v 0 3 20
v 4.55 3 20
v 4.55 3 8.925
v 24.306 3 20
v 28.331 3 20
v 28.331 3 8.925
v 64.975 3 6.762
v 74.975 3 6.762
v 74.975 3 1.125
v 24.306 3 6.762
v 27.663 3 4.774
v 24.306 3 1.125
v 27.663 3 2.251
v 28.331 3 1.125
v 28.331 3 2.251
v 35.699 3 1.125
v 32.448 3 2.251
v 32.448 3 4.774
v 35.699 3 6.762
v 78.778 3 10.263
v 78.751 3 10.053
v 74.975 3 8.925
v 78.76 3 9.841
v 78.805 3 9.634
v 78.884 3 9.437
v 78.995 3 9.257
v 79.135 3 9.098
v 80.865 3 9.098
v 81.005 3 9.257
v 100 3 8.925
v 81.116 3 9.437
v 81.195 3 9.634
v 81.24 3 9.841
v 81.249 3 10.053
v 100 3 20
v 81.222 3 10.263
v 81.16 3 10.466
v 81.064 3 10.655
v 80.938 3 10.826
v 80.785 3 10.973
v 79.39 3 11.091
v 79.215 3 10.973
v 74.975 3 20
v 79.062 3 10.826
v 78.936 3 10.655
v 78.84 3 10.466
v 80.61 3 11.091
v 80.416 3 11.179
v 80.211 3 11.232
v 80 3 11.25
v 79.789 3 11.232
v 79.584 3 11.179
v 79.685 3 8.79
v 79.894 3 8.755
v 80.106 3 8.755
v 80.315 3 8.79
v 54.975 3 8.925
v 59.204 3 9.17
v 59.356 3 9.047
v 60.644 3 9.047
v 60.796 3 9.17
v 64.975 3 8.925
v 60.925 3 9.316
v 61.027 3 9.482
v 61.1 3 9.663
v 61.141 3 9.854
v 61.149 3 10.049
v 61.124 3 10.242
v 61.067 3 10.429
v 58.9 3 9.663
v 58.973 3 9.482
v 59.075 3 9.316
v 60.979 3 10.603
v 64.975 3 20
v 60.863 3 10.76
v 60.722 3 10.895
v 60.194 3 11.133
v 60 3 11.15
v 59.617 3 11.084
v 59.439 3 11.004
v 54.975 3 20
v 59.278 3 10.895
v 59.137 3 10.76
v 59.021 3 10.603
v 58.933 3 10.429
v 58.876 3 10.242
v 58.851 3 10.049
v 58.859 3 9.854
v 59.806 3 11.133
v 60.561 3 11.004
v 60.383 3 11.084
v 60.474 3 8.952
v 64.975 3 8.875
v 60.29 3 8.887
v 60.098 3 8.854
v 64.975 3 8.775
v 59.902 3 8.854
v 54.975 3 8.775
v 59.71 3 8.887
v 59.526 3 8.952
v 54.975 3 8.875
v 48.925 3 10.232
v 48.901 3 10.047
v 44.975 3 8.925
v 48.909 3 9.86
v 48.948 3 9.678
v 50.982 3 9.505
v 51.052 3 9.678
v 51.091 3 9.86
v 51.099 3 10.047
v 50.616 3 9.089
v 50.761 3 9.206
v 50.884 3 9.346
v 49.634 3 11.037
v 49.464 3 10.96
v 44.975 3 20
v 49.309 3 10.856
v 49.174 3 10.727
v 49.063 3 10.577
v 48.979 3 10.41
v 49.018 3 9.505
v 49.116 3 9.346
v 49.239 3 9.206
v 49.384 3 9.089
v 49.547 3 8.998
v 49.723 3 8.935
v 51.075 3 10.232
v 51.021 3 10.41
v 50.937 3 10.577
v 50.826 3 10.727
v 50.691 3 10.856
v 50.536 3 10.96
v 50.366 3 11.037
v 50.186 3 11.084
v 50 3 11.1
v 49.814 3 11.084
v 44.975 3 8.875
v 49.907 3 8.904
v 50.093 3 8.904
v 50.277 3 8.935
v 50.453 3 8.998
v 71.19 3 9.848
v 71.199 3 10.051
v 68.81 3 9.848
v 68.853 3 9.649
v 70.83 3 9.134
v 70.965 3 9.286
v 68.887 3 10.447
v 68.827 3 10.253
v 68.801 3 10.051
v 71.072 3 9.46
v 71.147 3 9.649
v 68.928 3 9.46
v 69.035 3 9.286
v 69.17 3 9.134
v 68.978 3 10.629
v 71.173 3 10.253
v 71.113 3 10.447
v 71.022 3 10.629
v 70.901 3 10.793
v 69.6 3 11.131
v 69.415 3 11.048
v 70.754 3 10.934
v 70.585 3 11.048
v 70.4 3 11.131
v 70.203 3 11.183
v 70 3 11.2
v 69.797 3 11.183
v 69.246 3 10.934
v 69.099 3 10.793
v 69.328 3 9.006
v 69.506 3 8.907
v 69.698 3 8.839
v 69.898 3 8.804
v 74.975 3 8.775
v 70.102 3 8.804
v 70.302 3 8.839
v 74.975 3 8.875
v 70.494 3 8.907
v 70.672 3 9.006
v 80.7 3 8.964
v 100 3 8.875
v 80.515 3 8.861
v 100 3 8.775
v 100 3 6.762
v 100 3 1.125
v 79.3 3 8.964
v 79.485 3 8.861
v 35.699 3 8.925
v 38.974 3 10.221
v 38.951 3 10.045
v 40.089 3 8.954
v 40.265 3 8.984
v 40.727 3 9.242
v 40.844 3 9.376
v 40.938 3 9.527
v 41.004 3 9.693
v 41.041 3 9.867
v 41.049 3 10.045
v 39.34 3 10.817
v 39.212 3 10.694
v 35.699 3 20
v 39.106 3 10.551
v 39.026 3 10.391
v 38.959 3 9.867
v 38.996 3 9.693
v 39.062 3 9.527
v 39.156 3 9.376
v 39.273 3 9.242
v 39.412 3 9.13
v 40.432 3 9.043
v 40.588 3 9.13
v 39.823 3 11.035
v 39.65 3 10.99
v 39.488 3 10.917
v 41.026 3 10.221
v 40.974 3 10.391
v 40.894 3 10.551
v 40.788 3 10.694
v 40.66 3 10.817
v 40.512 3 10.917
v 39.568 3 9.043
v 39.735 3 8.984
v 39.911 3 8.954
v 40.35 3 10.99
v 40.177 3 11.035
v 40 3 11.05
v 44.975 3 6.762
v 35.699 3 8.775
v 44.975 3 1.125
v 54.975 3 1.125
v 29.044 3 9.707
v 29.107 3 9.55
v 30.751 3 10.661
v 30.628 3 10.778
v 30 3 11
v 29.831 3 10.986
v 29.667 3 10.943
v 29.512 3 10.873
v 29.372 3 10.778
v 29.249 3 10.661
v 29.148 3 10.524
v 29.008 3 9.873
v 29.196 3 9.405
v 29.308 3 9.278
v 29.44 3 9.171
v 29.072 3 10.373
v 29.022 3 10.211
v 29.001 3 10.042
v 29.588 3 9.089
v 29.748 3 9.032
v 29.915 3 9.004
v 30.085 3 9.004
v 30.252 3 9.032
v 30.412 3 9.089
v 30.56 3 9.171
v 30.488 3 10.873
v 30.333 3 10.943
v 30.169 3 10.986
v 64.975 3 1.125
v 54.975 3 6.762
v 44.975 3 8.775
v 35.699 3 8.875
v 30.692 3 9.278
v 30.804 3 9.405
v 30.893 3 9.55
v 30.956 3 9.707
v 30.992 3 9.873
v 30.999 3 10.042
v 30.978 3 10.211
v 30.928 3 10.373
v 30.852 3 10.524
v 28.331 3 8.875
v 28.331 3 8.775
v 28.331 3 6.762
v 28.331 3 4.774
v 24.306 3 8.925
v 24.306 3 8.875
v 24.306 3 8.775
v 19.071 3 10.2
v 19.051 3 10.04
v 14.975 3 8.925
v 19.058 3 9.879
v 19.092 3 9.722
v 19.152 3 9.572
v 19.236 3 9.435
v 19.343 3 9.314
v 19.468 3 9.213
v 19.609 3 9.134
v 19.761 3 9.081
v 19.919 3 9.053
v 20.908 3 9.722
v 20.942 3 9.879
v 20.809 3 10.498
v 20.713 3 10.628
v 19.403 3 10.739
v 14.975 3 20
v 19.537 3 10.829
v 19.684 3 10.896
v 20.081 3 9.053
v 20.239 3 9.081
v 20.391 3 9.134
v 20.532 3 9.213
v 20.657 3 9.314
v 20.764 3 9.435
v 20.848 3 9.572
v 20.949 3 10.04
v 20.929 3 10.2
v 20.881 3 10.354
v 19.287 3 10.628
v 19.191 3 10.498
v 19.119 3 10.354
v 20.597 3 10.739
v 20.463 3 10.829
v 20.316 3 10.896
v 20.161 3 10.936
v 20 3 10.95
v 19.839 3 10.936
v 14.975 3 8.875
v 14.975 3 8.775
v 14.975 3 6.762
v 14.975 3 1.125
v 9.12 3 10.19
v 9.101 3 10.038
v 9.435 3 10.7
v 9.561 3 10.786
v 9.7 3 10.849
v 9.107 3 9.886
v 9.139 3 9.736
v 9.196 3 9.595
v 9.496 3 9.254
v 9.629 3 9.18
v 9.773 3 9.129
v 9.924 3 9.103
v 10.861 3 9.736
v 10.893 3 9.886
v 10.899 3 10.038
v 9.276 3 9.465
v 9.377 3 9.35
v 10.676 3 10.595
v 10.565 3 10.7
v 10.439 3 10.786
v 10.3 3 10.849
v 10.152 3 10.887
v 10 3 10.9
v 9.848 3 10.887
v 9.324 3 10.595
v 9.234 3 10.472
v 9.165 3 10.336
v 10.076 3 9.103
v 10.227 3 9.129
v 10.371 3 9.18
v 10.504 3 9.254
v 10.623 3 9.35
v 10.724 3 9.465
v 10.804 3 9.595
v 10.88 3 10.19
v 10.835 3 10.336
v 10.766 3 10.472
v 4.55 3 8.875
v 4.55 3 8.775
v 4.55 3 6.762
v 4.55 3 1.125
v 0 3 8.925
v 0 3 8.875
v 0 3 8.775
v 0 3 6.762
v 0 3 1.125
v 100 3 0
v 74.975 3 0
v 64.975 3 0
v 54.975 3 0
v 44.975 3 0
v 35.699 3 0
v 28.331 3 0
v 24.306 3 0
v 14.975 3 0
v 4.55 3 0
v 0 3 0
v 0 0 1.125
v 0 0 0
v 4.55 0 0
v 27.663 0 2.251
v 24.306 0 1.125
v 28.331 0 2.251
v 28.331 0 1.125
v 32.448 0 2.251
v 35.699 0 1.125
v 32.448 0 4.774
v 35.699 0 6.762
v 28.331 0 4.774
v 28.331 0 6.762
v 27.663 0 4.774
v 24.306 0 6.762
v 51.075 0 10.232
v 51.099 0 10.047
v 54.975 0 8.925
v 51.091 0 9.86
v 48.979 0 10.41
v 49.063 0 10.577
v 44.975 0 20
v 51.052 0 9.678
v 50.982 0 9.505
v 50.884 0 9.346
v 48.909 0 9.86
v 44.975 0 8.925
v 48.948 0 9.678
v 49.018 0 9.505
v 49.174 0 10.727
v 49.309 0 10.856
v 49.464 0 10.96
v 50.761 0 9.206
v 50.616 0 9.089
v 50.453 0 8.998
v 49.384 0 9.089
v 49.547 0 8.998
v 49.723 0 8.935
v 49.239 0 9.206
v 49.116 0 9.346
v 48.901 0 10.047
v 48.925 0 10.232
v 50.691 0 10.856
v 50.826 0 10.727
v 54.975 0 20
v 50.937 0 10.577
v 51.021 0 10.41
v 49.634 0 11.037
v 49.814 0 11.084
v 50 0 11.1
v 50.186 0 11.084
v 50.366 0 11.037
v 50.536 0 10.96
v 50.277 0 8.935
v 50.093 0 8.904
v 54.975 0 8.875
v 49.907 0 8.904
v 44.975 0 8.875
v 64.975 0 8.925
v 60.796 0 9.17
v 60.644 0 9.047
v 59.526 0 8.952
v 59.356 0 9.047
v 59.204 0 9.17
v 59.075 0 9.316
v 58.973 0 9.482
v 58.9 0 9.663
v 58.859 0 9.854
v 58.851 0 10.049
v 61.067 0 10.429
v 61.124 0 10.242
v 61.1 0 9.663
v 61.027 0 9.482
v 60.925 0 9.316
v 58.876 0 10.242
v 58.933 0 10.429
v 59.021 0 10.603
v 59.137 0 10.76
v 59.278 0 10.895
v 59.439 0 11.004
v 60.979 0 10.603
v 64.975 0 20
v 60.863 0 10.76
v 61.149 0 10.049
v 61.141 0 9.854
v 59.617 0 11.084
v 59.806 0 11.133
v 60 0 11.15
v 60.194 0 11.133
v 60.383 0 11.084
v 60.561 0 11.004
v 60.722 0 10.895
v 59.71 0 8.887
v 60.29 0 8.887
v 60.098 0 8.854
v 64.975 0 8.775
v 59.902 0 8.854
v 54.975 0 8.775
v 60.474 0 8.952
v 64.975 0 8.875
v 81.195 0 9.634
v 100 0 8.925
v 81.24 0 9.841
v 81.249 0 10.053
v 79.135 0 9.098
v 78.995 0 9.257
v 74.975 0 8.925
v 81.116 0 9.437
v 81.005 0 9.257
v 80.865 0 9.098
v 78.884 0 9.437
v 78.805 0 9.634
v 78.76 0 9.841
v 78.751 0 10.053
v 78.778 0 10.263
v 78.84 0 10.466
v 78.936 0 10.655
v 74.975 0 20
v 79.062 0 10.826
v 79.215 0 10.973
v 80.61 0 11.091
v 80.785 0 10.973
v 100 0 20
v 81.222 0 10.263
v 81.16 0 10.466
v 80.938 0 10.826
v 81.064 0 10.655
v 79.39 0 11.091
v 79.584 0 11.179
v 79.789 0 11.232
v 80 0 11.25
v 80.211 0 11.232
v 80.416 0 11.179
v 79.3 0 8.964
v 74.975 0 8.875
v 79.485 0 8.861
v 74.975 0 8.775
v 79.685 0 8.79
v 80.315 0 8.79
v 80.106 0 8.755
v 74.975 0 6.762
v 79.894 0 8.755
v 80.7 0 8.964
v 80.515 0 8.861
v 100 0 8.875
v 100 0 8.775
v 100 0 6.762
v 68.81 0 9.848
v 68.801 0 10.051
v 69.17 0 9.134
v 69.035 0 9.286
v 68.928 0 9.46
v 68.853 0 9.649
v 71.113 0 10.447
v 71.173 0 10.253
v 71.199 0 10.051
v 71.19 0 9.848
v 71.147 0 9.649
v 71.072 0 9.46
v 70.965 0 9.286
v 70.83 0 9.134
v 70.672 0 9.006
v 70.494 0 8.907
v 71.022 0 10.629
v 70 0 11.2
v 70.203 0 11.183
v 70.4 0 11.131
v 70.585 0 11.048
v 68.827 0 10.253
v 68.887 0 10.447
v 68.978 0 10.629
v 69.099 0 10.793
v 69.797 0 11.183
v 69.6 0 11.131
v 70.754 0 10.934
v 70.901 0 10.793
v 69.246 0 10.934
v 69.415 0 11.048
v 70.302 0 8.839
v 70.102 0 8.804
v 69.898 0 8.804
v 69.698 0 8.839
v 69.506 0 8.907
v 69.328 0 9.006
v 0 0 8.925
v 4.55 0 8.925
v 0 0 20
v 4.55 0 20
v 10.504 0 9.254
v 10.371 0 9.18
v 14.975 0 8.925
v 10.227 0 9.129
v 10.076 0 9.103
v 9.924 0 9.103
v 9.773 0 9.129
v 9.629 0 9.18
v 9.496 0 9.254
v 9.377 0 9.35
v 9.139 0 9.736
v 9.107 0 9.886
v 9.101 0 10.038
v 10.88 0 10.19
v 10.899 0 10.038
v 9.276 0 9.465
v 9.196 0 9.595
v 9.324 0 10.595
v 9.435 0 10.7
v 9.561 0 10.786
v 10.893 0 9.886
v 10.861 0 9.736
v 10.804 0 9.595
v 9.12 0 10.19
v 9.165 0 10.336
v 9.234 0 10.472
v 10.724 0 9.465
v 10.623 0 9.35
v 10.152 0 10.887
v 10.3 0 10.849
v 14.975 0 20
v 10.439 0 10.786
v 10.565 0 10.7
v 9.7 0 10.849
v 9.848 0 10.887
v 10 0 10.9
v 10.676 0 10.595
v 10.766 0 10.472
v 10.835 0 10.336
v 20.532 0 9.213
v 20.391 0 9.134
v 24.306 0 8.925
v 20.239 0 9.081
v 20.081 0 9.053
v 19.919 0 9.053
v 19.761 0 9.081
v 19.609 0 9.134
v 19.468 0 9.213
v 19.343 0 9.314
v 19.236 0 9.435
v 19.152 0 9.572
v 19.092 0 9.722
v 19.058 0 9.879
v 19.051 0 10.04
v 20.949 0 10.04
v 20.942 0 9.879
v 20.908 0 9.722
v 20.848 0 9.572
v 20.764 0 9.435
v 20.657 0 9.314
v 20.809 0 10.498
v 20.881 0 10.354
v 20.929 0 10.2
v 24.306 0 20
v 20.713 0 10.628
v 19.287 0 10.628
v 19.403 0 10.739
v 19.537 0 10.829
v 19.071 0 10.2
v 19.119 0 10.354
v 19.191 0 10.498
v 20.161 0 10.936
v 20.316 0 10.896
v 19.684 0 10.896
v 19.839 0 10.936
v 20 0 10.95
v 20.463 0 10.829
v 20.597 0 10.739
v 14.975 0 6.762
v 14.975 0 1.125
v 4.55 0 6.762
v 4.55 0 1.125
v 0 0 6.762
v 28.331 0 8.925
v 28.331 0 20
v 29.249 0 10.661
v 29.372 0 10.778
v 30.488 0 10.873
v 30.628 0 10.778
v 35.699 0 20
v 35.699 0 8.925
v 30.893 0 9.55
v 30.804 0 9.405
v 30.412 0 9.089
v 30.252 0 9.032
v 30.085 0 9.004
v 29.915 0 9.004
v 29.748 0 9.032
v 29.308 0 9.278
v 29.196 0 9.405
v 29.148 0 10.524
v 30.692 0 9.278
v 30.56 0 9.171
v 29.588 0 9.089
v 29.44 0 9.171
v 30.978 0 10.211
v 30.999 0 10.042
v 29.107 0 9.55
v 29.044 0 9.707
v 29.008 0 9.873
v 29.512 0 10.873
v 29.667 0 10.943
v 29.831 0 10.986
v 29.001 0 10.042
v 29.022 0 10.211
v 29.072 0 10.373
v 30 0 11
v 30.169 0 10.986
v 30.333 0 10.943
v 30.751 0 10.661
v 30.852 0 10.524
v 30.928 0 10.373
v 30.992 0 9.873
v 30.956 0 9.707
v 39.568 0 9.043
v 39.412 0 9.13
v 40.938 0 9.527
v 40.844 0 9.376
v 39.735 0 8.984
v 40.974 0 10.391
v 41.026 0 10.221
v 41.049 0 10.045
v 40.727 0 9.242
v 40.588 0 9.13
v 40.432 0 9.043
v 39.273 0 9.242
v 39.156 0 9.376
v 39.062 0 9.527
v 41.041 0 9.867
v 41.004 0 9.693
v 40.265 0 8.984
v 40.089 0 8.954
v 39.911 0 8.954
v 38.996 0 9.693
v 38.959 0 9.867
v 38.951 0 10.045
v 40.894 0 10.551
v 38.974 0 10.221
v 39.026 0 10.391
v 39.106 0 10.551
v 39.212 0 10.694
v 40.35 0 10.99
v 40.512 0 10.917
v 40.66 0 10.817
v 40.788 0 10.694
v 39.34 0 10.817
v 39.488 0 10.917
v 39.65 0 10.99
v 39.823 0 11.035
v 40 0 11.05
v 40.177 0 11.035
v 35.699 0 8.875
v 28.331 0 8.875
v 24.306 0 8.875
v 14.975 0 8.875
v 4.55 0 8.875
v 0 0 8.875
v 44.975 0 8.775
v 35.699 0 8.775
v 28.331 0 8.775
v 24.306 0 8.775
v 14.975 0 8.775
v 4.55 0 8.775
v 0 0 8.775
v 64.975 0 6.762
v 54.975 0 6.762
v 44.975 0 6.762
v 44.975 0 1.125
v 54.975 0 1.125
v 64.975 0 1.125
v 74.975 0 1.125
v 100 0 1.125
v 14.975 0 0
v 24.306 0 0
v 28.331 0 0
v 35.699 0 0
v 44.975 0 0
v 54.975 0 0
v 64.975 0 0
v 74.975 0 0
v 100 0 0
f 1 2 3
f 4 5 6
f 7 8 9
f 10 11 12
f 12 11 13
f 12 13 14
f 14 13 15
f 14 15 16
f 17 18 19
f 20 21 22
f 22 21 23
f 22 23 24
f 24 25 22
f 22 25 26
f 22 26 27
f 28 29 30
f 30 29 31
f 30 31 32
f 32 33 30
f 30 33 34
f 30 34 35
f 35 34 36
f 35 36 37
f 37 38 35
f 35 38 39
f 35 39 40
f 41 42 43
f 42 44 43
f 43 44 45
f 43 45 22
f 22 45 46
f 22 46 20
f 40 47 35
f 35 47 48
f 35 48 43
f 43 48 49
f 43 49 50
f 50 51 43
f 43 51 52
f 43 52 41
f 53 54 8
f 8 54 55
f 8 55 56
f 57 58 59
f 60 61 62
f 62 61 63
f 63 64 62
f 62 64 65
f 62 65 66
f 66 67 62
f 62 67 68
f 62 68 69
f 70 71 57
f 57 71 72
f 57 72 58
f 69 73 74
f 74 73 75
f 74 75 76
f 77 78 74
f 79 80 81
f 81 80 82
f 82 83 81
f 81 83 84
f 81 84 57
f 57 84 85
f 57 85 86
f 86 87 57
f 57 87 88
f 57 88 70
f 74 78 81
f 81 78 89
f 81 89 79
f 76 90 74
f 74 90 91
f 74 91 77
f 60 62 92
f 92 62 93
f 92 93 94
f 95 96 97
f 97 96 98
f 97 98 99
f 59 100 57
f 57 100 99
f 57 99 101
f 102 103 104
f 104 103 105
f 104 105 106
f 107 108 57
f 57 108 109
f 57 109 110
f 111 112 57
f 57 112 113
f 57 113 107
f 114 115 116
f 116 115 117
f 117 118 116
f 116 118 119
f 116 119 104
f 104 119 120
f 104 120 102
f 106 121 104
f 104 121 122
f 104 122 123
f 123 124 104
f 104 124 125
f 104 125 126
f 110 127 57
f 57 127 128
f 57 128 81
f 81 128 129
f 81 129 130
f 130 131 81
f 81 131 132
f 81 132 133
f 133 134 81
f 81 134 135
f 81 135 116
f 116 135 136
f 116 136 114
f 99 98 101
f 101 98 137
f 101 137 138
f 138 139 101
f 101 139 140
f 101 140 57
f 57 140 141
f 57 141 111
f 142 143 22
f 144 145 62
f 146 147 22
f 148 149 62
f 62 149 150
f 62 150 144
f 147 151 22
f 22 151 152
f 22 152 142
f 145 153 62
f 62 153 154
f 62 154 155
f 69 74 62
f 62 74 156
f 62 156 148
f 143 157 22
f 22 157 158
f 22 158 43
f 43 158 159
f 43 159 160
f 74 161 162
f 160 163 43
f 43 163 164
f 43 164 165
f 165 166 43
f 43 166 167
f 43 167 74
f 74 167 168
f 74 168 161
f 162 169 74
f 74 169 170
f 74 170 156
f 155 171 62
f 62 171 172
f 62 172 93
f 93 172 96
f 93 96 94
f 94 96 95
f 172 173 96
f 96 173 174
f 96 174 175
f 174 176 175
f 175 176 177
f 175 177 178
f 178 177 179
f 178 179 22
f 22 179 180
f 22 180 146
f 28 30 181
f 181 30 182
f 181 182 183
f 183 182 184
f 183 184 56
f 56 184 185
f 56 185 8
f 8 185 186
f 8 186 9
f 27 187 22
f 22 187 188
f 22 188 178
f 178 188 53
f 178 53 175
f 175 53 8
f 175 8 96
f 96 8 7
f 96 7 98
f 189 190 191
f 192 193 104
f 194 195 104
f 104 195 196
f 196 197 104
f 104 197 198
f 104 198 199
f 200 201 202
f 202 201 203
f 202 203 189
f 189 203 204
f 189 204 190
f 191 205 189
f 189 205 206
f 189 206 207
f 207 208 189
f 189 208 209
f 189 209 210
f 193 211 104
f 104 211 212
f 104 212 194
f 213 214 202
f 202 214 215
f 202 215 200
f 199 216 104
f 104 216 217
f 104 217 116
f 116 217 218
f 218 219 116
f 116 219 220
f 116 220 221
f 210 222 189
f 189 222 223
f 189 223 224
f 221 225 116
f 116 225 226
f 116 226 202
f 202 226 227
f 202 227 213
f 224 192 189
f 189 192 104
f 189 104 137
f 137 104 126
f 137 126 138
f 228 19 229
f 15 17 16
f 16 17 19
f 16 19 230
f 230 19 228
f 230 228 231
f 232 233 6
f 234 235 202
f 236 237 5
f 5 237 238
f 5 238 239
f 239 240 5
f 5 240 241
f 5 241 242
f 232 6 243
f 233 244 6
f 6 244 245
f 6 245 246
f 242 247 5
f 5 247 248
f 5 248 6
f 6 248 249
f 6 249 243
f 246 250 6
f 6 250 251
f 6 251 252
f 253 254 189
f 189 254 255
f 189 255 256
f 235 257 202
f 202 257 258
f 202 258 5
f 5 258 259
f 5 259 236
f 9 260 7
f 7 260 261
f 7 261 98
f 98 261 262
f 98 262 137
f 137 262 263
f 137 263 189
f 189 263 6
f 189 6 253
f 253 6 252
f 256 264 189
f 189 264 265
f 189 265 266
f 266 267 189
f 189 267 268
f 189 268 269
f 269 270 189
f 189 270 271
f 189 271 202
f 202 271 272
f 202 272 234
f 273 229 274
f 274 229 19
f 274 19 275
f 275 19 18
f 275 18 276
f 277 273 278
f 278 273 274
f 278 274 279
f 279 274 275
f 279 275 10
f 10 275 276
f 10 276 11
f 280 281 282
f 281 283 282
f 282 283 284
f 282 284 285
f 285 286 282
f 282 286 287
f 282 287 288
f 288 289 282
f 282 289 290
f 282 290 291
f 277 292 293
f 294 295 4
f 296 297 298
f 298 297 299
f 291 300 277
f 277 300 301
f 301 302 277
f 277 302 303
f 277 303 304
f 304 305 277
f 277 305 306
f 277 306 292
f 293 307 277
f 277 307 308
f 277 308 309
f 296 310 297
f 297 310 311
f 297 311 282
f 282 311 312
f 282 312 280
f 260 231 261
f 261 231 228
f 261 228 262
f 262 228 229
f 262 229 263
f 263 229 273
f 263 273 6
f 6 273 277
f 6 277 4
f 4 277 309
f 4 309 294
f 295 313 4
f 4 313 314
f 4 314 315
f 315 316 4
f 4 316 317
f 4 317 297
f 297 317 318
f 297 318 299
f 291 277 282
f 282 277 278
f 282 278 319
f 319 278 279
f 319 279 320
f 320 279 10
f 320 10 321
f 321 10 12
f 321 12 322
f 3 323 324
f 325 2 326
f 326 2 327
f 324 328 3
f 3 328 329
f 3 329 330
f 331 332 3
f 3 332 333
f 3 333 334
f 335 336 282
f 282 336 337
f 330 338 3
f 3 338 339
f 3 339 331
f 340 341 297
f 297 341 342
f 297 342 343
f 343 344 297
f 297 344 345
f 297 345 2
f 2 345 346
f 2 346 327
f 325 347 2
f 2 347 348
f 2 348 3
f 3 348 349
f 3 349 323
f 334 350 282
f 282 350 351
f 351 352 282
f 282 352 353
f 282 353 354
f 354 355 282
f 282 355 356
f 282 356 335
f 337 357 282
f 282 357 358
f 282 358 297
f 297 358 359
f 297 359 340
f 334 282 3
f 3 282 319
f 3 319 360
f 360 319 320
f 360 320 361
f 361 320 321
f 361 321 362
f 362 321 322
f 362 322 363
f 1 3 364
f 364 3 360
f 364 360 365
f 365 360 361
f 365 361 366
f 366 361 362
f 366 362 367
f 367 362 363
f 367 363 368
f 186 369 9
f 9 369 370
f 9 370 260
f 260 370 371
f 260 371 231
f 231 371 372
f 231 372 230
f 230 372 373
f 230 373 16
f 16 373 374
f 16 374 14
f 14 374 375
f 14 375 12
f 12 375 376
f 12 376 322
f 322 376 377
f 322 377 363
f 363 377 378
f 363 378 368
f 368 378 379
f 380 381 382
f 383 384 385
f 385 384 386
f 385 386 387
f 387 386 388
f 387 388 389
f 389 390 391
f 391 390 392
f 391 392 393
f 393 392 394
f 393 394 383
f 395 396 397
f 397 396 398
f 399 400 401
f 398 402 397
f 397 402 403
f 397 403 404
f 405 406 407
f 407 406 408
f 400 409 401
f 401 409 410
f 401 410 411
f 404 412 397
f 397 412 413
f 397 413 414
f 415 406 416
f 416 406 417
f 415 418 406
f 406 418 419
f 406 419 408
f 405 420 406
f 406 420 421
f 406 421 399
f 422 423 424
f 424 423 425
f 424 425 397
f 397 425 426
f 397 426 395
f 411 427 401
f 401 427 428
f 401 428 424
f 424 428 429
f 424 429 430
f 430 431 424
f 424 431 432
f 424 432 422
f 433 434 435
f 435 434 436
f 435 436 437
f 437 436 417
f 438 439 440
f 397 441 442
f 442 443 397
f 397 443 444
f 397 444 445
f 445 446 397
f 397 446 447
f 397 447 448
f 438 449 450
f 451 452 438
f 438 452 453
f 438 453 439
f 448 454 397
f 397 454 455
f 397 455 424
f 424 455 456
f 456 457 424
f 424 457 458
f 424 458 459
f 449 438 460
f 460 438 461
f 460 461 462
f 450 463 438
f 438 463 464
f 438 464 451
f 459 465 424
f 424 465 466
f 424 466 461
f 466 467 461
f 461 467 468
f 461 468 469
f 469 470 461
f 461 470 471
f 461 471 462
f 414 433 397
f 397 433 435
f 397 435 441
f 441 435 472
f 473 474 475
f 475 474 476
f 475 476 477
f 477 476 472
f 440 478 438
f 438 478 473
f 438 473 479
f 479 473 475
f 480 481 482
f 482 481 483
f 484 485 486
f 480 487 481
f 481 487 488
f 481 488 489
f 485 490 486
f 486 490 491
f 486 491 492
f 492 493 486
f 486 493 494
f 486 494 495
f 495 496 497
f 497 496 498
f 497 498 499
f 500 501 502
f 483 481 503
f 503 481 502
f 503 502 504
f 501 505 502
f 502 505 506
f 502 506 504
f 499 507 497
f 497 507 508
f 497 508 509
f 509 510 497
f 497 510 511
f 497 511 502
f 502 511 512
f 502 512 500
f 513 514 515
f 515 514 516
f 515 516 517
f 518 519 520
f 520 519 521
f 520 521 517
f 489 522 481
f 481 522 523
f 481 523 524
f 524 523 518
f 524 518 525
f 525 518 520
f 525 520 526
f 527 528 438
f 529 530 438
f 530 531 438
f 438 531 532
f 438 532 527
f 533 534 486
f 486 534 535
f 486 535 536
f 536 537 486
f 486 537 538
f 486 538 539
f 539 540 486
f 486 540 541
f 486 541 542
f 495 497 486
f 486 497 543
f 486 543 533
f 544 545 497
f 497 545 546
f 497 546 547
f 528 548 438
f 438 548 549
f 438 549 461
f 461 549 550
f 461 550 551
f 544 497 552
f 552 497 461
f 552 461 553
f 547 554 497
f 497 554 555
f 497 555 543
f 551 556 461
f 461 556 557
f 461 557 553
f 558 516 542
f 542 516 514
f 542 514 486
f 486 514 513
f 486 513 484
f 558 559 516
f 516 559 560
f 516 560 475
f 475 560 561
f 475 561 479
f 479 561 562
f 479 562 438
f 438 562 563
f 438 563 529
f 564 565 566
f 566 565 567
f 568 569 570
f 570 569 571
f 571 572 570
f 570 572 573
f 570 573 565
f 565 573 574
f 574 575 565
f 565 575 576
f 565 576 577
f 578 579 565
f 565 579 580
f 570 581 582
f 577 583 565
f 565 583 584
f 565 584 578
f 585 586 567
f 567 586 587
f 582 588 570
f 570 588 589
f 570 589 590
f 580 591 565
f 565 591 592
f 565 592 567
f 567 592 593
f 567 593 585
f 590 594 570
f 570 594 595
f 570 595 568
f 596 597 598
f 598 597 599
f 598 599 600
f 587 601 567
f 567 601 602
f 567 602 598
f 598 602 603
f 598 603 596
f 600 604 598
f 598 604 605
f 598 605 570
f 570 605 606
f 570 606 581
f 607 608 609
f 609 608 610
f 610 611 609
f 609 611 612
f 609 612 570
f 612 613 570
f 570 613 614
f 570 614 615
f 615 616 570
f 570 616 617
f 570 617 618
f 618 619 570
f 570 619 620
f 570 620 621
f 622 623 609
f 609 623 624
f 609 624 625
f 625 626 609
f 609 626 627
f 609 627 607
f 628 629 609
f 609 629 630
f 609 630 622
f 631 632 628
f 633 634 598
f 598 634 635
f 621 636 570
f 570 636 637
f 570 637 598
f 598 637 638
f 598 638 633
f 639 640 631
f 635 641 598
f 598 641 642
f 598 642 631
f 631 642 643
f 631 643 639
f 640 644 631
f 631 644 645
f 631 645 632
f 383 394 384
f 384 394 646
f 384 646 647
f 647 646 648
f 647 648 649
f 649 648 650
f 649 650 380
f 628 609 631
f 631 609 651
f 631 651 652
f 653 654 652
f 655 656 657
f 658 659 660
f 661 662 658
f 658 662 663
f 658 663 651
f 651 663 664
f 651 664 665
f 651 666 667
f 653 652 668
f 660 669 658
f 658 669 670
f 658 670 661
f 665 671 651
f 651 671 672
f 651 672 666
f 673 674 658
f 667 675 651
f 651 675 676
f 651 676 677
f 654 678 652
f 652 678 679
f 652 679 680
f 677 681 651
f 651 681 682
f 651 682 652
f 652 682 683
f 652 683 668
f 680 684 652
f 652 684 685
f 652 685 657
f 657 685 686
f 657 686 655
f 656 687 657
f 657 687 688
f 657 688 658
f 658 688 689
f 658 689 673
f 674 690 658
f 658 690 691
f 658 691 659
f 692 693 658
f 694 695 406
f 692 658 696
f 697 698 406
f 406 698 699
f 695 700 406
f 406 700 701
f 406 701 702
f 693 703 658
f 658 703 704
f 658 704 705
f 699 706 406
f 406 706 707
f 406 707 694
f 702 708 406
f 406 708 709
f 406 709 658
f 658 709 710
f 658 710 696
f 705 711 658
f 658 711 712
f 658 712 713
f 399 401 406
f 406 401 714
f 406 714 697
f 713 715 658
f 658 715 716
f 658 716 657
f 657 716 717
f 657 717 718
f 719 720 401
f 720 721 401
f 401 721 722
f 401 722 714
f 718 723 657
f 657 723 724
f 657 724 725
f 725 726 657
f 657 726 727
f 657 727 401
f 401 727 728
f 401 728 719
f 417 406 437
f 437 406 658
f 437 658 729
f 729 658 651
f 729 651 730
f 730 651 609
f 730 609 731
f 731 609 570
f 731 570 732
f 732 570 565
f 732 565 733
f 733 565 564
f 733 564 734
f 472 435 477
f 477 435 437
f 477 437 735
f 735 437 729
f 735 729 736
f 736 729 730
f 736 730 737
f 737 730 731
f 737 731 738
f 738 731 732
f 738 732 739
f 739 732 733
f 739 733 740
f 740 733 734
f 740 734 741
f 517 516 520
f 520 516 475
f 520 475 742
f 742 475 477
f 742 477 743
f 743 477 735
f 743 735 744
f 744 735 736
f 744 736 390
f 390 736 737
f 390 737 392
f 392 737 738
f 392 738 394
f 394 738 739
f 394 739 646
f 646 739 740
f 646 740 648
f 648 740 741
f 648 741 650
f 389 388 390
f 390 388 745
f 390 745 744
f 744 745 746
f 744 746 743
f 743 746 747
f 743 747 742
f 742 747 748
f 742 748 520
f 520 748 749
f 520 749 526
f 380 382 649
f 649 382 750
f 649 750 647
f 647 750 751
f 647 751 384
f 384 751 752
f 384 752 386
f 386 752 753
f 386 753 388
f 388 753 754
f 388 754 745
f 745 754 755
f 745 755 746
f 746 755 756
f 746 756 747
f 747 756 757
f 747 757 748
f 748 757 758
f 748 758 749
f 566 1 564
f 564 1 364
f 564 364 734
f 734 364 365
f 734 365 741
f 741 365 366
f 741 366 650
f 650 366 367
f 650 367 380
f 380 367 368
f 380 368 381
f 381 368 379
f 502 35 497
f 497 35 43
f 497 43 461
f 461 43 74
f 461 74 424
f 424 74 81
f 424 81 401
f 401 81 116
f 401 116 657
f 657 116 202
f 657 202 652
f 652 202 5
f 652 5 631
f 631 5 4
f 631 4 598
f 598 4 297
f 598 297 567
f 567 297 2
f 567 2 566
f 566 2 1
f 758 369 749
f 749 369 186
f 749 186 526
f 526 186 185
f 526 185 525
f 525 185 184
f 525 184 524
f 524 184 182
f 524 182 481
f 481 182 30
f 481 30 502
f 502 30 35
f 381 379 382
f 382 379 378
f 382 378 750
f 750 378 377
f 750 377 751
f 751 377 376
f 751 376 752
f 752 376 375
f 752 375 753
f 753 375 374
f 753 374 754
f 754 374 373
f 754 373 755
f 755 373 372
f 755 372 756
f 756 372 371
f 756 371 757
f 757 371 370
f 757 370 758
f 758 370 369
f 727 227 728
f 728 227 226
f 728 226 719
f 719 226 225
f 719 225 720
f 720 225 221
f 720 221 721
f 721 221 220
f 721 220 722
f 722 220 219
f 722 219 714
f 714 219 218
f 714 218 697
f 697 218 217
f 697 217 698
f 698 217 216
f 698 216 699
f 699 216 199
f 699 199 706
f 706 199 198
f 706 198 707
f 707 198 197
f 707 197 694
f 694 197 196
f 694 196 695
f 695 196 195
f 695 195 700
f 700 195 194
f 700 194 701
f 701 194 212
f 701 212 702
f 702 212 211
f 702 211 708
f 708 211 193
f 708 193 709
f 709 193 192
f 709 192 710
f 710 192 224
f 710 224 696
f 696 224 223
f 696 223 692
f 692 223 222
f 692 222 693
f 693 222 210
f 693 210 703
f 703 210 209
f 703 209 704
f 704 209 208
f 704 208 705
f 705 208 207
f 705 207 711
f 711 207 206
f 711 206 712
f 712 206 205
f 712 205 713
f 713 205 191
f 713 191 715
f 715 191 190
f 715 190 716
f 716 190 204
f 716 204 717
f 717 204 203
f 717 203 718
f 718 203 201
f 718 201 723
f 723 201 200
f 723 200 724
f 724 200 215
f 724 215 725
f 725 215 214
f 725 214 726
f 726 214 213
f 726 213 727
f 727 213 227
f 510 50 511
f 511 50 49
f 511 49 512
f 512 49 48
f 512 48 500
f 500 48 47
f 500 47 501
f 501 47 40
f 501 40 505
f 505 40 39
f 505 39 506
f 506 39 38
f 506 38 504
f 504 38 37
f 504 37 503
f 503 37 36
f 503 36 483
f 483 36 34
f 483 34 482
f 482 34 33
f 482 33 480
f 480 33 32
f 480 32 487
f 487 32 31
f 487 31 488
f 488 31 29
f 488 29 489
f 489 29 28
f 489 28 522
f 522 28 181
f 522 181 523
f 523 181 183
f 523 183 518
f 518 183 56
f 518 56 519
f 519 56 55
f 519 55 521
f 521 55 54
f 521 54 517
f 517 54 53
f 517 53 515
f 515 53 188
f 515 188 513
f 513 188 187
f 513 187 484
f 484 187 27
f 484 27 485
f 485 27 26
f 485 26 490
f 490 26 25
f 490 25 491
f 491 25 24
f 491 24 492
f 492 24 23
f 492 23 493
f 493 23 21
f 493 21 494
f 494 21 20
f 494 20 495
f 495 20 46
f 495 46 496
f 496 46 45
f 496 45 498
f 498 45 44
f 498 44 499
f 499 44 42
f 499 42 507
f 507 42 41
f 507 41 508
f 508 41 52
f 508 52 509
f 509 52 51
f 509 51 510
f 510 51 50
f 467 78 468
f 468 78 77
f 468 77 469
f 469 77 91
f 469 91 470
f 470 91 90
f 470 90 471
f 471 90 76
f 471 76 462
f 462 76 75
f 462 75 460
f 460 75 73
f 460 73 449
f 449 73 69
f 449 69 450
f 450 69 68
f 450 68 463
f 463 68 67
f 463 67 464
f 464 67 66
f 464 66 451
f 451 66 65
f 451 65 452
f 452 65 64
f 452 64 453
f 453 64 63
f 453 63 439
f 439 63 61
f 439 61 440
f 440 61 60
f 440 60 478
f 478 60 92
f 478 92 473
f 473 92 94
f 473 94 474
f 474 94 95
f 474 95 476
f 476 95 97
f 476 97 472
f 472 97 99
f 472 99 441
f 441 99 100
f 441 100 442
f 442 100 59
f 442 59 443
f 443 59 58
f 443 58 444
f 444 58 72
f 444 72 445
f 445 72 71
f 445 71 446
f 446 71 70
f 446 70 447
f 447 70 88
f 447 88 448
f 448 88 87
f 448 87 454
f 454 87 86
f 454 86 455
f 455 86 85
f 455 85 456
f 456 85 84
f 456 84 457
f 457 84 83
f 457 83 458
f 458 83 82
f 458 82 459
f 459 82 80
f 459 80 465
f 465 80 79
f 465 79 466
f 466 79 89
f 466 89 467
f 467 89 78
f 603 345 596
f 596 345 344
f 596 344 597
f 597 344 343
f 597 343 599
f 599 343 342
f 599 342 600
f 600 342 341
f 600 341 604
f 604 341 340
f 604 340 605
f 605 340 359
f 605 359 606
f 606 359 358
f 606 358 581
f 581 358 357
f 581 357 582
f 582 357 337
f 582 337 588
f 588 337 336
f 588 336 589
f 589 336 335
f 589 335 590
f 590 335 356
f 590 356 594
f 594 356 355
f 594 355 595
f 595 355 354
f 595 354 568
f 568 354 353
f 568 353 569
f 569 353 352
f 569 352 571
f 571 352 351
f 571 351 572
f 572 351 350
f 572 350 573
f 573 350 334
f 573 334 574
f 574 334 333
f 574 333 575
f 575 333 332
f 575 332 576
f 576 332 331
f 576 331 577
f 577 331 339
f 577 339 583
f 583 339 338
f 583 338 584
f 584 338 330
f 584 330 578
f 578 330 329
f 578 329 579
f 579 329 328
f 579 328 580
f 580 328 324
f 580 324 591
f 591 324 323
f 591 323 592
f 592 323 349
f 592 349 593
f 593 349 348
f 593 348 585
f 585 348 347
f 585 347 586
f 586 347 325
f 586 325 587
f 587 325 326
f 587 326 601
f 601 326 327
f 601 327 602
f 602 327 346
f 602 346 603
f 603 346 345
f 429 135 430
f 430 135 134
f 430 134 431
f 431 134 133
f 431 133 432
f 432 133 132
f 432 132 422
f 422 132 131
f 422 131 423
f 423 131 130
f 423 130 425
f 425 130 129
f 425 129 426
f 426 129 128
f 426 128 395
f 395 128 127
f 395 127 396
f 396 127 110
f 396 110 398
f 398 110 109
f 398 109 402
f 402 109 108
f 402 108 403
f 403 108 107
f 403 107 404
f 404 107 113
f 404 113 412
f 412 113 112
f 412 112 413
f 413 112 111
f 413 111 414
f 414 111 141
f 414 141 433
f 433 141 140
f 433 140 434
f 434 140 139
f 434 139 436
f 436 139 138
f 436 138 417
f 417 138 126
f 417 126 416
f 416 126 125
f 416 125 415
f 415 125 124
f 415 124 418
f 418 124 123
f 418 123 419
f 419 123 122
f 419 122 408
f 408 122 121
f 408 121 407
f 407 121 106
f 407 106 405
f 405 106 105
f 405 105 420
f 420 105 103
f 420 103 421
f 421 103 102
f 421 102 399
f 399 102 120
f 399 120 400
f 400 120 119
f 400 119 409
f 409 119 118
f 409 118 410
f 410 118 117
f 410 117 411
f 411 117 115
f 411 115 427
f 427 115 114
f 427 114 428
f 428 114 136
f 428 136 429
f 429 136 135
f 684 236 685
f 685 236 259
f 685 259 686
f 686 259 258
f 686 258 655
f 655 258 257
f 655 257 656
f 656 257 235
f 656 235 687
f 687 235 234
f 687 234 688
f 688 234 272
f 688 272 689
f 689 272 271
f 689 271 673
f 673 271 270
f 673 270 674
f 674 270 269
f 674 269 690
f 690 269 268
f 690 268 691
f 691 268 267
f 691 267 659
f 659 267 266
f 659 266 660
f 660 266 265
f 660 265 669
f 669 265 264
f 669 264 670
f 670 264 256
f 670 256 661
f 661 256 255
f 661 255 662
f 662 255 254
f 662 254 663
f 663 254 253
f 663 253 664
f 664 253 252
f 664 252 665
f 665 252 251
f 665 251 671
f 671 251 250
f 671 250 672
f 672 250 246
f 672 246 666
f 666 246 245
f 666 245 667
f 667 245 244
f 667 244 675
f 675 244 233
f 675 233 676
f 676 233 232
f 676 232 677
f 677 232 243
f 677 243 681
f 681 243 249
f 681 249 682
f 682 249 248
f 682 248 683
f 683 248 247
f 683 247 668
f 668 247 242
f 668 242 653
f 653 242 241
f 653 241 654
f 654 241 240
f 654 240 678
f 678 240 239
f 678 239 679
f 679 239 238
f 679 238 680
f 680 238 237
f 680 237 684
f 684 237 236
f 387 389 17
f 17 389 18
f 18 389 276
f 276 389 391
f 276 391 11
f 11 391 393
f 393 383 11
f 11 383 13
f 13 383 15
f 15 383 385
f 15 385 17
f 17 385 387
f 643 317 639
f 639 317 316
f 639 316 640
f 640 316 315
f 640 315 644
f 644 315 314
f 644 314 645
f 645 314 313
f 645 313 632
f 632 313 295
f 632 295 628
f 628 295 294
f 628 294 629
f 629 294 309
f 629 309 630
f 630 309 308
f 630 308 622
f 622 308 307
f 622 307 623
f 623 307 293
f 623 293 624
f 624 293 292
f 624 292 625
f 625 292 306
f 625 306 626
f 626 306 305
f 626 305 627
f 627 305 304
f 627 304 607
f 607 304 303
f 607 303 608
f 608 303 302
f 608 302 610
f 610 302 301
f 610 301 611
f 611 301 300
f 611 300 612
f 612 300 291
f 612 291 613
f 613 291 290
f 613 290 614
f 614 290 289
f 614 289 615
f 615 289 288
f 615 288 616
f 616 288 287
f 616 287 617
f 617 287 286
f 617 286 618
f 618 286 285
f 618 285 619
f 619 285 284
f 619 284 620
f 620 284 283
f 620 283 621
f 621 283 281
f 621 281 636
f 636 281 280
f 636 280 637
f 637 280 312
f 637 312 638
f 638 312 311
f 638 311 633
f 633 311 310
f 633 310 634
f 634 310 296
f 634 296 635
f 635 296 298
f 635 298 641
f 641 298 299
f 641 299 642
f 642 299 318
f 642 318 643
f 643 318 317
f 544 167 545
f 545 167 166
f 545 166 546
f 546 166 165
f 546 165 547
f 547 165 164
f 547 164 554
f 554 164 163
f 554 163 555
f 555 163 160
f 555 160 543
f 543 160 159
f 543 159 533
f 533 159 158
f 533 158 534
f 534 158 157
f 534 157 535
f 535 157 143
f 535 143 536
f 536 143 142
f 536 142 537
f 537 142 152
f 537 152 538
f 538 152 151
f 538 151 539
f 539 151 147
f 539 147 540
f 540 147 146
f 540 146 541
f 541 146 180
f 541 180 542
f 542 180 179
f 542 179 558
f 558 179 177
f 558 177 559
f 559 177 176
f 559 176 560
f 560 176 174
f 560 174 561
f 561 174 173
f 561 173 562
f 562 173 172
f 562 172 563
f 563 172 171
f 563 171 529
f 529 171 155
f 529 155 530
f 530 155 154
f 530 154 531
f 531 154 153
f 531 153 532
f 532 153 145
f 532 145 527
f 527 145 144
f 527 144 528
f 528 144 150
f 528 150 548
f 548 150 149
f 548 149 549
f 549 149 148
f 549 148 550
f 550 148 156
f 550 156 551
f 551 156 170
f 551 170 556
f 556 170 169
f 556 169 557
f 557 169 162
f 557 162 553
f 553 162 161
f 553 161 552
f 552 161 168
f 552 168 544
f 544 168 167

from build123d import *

# Parameters (mm, degrees)
SKETCH1_W           = 100
SKETCH1_H           = 20
BOSS_EXTRUDE1_DEPTH = 3
SKETCH2_W           = 4.785100676
SKETCH2_H           = 2.523053084
CUT_EXTRUDE1_DEPTH  = 3


with BuildPart() as part:
    # Sketch1 → Boss-Extrude1 (new body)
    with BuildSketch(Plane(origin=(0, 0, 0), x_dir=(1, 0, 0), z_dir=(0, 1, 0))):
        with Locations((50, -10)):
            Rectangle(SKETCH1_W, SKETCH1_H)
    extrude(amount=BOSS_EXTRUDE1_DEPTH)

    # Sketch2 → Cut-Extrude1 (cut)
    with BuildSketch(Plane(origin=(0, 3, 0), x_dir=(1, 0, 0), z_dir=(0, 1, 0))):
        with BuildLine():
            ThreePointArc((41.05, -10), (40, -8.95), (38.95, -10))
            Line((38.95, -10), (41.05, -10))
        make_face()
        with BuildLine():
            Line((41.05, -10), (38.95, -10))
            ThreePointArc((38.95, -10), (40, -11.05), (41.05, -10))
        make_face()
        with BuildLine():
            ThreePointArc((31, -10), (30, -9), (29, -10))
            Line((29, -10), (31, -10))
        make_face()
        with BuildLine():
            Line((31, -10), (29, -10))
            ThreePointArc((29, -10), (30, -11), (31, -10))
        make_face()
        with Locations((30.05546257, -3.512455318)):
            Rectangle(SKETCH2_W, SKETCH2_H)
        with BuildLine():
            ThreePointArc((20.95, -10), (20, -9.05), (19.05, -10))
            Line((19.05, -10), (20.95, -10))
        make_face()
        with BuildLine():
            Line((20.95, -10), (19.05, -10))
            ThreePointArc((19.05, -10), (20, -10.95), (20.95, -10))
        make_face()
        with BuildLine():
            ThreePointArc((71.2, -10), (70, -8.8), (68.8, -10))
            Line((68.8, -10), (71.2, -10))
        make_face()
        with BuildLine():
            Line((71.2, -10), (68.8, -10))
            ThreePointArc((68.8, -10), (70, -11.2), (71.2, -10))
        make_face()
        with BuildLine():
            ThreePointArc((81.25, -10), (80, -8.75), (78.75, -10))
            Line((78.75, -10), (81.25, -10))
        make_face()
        with BuildLine():
            Line((81.25, -10), (78.75, -10))
            ThreePointArc((78.75, -10), (80, -11.25), (81.25, -10))
        make_face()
        with BuildLine():
            ThreePointArc((51.1, -10), (50, -8.9), (48.9, -10))
            Line((48.9, -10), (51.1, -10))
        make_face()
        with BuildLine():
            Line((51.1, -10), (48.9, -10))
            ThreePointArc((48.9, -10), (50, -11.1), (51.1, -10))
        make_face()
        with BuildLine():
            ThreePointArc((10.9, -10), (10, -9.1), (9.1, -10))
            Line((9.1, -10), (10.9, -10))
        make_face()
        with BuildLine():
            Line((10.9, -10), (9.1, -10))
            ThreePointArc((9.1, -10), (10, -10.9), (10.9, -10))
        make_face()
        with BuildLine():
            ThreePointArc((61.15, -10), (60, -8.85), (58.85, -10))
            Line((58.85, -10), (61.15, -10))
        make_face()
        with BuildLine():
            Line((61.15, -10), (58.85, -10))
            ThreePointArc((58.85, -10), (60, -11.15), (61.15, -10))
        make_face()
    extrude(amount=-CUT_EXTRUDE1_DEPTH, mode=Mode.SUBTRACT)


solid = part.part
